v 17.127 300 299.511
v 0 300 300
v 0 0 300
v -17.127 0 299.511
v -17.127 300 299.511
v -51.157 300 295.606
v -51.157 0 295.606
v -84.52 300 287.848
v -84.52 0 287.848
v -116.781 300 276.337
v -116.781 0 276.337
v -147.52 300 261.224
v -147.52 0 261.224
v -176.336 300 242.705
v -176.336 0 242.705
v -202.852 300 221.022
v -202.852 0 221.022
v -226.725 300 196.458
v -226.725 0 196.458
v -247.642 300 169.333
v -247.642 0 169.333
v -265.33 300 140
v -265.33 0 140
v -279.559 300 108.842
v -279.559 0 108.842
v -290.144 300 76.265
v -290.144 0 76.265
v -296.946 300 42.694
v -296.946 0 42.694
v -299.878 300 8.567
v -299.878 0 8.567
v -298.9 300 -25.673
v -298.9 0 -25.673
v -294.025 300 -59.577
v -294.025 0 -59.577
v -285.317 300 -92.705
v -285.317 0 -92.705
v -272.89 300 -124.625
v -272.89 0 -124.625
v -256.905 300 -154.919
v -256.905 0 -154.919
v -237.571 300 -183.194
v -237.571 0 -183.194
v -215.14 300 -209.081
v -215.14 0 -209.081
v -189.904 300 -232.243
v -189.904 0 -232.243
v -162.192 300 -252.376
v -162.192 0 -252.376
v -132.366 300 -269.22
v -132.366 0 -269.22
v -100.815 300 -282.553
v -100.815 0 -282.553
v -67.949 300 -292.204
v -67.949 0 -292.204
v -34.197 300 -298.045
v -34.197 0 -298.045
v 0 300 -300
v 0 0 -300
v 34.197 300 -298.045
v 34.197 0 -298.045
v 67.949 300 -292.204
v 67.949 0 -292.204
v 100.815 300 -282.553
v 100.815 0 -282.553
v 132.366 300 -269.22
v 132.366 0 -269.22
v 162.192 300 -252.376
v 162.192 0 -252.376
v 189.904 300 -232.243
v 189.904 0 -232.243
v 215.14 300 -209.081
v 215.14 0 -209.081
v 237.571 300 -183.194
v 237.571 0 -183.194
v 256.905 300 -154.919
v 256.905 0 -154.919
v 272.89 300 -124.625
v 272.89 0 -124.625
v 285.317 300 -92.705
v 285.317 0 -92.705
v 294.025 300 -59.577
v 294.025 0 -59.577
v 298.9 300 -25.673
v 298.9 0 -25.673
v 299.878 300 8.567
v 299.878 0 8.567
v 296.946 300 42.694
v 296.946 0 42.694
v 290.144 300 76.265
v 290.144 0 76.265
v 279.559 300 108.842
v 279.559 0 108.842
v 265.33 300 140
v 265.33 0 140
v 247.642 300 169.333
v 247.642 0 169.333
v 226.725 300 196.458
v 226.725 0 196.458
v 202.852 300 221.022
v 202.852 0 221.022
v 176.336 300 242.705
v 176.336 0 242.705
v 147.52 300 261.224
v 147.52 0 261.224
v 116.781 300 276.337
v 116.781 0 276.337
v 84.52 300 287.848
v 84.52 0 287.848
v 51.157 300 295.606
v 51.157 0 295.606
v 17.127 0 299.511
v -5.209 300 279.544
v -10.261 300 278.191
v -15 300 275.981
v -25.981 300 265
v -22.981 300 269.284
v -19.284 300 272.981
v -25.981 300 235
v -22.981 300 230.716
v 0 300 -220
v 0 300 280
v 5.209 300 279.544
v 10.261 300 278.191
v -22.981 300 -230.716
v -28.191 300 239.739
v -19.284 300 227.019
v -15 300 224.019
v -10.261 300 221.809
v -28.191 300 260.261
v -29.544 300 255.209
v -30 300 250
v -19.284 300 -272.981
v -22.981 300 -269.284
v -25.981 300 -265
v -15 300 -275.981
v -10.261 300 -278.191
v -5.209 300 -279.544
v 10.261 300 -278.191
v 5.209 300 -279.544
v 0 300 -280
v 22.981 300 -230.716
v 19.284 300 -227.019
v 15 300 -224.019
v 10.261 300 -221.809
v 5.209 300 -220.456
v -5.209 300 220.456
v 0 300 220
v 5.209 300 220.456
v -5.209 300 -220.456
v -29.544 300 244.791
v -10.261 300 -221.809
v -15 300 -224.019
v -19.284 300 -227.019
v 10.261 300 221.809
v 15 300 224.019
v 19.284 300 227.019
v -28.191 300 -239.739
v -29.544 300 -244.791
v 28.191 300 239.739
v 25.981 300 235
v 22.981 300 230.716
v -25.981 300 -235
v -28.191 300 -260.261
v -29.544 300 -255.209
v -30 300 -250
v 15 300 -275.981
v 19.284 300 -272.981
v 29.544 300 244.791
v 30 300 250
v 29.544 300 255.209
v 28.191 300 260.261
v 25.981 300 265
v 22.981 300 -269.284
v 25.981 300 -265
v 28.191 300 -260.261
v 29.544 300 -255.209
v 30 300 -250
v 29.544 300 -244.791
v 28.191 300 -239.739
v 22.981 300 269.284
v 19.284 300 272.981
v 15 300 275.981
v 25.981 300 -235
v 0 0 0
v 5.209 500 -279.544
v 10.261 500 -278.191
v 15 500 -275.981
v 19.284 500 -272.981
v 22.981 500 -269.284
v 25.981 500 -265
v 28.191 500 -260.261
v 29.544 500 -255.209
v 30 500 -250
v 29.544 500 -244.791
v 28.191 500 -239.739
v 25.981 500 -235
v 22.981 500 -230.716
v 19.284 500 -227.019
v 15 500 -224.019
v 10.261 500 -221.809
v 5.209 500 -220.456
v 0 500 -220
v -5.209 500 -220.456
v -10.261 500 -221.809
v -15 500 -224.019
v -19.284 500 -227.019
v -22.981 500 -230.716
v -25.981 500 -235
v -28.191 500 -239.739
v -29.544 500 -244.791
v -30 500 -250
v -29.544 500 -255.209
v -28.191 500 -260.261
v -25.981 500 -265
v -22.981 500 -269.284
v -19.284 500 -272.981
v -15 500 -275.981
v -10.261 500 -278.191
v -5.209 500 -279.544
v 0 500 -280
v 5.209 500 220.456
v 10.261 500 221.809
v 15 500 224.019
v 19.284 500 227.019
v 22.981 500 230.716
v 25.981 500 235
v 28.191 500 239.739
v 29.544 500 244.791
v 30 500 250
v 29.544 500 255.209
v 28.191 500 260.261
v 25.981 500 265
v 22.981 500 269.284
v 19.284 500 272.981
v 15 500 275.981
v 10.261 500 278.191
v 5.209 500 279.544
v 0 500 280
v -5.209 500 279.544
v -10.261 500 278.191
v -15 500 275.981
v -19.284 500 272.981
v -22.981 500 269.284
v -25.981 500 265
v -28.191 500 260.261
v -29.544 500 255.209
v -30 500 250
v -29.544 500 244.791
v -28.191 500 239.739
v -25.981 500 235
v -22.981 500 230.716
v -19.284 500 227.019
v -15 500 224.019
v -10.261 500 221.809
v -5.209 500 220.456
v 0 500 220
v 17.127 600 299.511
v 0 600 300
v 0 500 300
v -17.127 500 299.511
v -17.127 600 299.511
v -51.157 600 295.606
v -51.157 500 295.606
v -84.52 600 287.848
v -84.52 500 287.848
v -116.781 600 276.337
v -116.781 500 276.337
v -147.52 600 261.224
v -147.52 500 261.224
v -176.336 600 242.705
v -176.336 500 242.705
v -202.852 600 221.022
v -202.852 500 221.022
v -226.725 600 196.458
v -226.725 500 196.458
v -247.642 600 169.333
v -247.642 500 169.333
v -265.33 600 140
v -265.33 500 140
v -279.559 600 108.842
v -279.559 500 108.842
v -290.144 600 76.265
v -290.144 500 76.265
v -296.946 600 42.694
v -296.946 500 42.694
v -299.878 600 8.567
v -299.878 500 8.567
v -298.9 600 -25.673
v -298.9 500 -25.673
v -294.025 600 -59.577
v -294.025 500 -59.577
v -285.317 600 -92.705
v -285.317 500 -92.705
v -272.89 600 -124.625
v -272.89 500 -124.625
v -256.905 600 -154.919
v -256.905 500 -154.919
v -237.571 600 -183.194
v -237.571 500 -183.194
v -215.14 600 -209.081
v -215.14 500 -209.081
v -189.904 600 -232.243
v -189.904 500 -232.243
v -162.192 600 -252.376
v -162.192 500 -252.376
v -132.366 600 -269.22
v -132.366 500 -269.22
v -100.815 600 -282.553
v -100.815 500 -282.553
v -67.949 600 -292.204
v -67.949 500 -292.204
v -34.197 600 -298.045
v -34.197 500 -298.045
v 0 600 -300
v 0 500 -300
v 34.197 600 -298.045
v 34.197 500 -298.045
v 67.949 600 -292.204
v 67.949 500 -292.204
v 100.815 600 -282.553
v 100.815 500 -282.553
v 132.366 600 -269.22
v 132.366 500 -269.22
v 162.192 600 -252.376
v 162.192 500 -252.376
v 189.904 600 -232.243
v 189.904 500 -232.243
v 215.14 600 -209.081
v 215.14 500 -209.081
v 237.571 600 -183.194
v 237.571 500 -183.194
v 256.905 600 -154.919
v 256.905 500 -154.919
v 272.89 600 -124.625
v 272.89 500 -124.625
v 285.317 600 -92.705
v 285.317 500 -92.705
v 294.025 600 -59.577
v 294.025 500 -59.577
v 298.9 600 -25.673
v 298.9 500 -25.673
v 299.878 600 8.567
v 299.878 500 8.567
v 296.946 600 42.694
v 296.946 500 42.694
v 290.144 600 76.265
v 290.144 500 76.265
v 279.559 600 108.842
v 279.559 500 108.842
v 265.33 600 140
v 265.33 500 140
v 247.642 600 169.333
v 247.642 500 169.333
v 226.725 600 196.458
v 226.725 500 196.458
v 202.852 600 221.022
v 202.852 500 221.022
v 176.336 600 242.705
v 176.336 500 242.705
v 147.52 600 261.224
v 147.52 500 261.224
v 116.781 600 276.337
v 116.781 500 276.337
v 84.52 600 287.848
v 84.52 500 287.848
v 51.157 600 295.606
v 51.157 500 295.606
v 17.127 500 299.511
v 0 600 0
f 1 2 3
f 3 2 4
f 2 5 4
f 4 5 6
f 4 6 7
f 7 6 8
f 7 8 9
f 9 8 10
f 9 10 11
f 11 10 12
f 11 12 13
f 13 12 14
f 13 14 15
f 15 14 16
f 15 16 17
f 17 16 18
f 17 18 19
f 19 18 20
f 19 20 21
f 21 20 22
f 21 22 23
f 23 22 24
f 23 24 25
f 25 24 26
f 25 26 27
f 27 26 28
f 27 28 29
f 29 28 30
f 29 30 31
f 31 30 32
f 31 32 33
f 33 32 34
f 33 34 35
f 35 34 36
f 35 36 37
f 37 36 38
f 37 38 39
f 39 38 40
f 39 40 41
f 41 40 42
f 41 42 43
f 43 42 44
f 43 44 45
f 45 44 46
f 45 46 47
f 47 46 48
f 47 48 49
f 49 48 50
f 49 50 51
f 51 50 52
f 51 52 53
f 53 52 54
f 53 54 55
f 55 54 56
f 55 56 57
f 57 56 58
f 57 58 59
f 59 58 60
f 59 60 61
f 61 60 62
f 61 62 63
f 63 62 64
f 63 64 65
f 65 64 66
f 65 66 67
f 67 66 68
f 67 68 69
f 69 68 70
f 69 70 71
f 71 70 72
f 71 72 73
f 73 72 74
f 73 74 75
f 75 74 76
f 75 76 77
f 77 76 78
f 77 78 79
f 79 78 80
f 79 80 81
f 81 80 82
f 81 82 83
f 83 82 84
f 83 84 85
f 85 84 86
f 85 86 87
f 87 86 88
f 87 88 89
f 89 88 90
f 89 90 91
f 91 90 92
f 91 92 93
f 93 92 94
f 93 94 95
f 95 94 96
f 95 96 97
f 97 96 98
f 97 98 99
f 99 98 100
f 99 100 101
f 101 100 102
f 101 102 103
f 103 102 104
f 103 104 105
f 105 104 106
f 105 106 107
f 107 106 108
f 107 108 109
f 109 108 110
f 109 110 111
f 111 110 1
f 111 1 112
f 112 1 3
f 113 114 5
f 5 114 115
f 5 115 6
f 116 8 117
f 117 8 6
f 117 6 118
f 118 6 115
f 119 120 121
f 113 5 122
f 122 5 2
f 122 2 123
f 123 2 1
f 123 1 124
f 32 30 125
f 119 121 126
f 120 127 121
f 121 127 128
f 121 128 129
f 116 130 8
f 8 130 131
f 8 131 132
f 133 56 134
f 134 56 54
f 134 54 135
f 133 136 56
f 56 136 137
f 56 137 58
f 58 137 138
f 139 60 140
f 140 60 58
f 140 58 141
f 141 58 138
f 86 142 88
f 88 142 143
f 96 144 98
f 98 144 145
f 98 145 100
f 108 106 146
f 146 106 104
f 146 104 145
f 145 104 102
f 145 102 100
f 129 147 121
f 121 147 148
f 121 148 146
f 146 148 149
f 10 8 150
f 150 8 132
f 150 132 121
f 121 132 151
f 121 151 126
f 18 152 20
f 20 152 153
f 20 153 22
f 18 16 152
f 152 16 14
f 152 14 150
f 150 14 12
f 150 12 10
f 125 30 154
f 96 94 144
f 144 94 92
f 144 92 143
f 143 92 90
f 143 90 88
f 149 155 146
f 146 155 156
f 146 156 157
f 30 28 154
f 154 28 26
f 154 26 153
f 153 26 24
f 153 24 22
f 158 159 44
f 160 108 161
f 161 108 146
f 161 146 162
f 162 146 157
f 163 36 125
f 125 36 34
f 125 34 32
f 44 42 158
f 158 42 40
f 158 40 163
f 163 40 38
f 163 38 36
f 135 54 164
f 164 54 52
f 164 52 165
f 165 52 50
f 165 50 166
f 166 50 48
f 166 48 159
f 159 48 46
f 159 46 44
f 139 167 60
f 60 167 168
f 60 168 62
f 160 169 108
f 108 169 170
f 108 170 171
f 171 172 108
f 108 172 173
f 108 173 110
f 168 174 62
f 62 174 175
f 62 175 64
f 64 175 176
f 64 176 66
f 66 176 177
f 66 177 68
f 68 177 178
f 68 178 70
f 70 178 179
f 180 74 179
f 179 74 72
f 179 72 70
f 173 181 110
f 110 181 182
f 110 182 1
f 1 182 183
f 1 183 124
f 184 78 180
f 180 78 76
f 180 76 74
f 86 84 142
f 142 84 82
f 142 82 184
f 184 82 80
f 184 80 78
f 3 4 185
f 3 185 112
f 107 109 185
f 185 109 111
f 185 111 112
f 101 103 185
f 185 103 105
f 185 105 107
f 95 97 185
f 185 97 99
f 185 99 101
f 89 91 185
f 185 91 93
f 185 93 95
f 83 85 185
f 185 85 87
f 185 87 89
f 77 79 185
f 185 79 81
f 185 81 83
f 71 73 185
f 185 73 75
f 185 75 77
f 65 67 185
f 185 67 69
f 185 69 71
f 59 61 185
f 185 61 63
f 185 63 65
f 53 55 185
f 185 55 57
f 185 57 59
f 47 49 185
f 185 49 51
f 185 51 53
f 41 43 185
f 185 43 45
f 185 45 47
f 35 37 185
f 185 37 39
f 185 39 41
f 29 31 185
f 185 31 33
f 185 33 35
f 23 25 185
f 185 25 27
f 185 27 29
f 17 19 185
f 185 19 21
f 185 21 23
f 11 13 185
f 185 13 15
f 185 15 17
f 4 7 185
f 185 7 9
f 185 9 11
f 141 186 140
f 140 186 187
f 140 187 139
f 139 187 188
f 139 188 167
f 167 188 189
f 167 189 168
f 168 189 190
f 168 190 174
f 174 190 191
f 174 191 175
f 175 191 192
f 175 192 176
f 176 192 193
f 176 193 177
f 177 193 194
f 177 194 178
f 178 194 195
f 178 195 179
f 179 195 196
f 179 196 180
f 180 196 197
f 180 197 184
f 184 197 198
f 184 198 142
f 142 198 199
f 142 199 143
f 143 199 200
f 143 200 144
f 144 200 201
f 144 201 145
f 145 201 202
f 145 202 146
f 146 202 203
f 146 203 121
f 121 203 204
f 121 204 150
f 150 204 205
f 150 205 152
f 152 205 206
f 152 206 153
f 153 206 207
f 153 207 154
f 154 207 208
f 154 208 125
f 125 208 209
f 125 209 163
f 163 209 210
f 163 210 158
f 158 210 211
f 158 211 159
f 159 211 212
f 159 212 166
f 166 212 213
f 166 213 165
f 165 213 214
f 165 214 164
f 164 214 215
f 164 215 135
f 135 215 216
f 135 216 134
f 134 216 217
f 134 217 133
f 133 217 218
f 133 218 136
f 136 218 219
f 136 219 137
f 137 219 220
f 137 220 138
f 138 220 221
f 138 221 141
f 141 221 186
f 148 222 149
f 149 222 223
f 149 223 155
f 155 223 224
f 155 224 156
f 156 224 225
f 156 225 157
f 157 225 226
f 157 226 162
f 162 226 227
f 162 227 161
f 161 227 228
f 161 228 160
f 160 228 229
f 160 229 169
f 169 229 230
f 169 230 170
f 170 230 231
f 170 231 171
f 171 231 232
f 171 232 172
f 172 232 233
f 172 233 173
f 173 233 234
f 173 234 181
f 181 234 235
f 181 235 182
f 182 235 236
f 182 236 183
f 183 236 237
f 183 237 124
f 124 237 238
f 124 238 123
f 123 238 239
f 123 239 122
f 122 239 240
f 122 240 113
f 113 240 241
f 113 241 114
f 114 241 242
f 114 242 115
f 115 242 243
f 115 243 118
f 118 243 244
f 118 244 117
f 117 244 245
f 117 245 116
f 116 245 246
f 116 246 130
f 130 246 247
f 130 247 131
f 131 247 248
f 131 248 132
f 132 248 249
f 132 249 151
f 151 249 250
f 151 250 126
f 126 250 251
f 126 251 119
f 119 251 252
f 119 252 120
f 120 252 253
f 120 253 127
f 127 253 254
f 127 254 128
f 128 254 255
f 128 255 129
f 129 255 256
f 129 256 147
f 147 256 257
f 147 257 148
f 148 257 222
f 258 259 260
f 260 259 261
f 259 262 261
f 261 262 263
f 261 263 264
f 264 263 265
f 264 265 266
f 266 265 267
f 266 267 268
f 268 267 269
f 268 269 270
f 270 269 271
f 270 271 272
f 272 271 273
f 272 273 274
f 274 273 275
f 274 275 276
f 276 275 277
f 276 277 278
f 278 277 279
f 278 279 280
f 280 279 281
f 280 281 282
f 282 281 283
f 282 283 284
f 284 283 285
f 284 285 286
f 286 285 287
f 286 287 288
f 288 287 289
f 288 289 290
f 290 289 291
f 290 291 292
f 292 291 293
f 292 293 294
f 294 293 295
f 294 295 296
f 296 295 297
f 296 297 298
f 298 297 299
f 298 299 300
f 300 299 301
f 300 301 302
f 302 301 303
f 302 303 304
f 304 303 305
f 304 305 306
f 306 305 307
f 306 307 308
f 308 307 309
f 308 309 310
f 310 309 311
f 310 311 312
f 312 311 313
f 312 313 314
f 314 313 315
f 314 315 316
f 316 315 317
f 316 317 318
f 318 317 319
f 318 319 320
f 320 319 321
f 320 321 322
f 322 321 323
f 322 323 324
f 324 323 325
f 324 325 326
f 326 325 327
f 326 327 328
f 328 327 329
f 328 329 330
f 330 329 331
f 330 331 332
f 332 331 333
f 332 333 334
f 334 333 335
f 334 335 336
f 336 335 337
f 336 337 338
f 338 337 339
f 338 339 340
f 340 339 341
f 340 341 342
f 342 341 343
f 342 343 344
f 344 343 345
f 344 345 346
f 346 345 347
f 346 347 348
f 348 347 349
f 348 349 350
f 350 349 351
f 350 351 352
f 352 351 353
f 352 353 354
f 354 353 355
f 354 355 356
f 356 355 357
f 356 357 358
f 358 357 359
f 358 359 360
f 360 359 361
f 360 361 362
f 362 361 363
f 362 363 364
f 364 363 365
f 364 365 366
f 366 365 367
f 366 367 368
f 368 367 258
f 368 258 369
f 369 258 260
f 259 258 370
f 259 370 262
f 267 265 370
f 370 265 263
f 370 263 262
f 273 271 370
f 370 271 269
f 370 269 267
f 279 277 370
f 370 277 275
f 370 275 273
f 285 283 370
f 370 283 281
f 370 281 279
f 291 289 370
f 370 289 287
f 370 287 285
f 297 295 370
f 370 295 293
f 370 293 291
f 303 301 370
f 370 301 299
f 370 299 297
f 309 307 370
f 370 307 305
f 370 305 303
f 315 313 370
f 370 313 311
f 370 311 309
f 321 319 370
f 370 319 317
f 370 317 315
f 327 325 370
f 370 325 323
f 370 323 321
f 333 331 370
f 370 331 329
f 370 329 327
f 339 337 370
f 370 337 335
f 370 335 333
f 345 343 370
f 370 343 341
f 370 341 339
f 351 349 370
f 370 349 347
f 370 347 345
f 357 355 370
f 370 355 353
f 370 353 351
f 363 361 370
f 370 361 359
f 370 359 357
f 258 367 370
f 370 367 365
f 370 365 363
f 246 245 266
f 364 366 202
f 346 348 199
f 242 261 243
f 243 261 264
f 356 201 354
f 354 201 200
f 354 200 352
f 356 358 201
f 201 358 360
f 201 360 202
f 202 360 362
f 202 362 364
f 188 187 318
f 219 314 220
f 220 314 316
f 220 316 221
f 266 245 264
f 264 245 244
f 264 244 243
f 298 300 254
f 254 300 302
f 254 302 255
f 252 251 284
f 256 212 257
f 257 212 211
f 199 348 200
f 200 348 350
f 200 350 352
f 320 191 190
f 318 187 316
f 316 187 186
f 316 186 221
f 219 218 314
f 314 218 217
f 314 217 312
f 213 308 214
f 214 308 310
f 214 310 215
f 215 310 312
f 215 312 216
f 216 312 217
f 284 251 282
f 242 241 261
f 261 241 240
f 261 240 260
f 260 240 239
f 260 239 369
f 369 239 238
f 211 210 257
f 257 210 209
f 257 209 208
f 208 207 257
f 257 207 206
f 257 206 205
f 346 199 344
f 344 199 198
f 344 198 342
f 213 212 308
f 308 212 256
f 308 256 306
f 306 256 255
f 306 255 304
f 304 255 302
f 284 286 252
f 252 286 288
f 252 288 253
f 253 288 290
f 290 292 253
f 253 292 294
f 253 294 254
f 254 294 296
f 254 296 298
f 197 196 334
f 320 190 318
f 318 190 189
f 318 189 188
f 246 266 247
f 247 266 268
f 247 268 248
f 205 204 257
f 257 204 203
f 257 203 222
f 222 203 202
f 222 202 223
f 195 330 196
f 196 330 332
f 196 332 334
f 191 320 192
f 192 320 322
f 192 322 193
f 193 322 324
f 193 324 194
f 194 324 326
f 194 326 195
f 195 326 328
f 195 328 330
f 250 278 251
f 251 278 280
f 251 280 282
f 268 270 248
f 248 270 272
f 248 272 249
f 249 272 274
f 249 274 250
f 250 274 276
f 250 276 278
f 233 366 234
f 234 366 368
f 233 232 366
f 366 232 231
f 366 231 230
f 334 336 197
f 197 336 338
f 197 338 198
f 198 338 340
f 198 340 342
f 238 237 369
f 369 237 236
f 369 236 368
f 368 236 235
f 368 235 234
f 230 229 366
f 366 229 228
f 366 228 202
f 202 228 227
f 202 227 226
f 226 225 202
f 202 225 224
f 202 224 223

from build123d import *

# Parameters (mm, degrees)
SKETCH1_R           = 300
BOSS_EXTRUDE1_DEPTH = 300
SKETCH2_R           = 30
BOSS_EXTRUDE2_DEPTH = 200
SKETCH3_R           = 300
BOSS_EXTRUDE3_DEPTH = 100


with BuildPart() as part:
    # Sketch1 → Boss-Extrude1 (new body)
    with BuildSketch(Plane(origin=(0, 0, 0), x_dir=(1, 0, 0), z_dir=(0, 1, 0))):
        Circle(SKETCH1_R)
    extrude(amount=BOSS_EXTRUDE1_DEPTH)

    # Sketch2 → Boss-Extrude2 (add)
    with BuildSketch(Plane(origin=(0, 300, 0), x_dir=(1, 0, 0), z_dir=(0, 1, 0))):
        with Locations((0, 250)):
            Circle(SKETCH2_R)
        with Locations((0, -250)):
            Circle(SKETCH2_R)
    extrude(amount=BOSS_EXTRUDE2_DEPTH)

    # Sketch3 → Boss-Extrude3 (add)
    with BuildSketch(Plane(origin=(0, 500, 0), x_dir=(1, 0, 0), z_dir=(0, 1, 0))):
        Circle(SKETCH3_R)
    extrude(amount=BOSS_EXTRUDE3_DEPTH)


solid = part.part
